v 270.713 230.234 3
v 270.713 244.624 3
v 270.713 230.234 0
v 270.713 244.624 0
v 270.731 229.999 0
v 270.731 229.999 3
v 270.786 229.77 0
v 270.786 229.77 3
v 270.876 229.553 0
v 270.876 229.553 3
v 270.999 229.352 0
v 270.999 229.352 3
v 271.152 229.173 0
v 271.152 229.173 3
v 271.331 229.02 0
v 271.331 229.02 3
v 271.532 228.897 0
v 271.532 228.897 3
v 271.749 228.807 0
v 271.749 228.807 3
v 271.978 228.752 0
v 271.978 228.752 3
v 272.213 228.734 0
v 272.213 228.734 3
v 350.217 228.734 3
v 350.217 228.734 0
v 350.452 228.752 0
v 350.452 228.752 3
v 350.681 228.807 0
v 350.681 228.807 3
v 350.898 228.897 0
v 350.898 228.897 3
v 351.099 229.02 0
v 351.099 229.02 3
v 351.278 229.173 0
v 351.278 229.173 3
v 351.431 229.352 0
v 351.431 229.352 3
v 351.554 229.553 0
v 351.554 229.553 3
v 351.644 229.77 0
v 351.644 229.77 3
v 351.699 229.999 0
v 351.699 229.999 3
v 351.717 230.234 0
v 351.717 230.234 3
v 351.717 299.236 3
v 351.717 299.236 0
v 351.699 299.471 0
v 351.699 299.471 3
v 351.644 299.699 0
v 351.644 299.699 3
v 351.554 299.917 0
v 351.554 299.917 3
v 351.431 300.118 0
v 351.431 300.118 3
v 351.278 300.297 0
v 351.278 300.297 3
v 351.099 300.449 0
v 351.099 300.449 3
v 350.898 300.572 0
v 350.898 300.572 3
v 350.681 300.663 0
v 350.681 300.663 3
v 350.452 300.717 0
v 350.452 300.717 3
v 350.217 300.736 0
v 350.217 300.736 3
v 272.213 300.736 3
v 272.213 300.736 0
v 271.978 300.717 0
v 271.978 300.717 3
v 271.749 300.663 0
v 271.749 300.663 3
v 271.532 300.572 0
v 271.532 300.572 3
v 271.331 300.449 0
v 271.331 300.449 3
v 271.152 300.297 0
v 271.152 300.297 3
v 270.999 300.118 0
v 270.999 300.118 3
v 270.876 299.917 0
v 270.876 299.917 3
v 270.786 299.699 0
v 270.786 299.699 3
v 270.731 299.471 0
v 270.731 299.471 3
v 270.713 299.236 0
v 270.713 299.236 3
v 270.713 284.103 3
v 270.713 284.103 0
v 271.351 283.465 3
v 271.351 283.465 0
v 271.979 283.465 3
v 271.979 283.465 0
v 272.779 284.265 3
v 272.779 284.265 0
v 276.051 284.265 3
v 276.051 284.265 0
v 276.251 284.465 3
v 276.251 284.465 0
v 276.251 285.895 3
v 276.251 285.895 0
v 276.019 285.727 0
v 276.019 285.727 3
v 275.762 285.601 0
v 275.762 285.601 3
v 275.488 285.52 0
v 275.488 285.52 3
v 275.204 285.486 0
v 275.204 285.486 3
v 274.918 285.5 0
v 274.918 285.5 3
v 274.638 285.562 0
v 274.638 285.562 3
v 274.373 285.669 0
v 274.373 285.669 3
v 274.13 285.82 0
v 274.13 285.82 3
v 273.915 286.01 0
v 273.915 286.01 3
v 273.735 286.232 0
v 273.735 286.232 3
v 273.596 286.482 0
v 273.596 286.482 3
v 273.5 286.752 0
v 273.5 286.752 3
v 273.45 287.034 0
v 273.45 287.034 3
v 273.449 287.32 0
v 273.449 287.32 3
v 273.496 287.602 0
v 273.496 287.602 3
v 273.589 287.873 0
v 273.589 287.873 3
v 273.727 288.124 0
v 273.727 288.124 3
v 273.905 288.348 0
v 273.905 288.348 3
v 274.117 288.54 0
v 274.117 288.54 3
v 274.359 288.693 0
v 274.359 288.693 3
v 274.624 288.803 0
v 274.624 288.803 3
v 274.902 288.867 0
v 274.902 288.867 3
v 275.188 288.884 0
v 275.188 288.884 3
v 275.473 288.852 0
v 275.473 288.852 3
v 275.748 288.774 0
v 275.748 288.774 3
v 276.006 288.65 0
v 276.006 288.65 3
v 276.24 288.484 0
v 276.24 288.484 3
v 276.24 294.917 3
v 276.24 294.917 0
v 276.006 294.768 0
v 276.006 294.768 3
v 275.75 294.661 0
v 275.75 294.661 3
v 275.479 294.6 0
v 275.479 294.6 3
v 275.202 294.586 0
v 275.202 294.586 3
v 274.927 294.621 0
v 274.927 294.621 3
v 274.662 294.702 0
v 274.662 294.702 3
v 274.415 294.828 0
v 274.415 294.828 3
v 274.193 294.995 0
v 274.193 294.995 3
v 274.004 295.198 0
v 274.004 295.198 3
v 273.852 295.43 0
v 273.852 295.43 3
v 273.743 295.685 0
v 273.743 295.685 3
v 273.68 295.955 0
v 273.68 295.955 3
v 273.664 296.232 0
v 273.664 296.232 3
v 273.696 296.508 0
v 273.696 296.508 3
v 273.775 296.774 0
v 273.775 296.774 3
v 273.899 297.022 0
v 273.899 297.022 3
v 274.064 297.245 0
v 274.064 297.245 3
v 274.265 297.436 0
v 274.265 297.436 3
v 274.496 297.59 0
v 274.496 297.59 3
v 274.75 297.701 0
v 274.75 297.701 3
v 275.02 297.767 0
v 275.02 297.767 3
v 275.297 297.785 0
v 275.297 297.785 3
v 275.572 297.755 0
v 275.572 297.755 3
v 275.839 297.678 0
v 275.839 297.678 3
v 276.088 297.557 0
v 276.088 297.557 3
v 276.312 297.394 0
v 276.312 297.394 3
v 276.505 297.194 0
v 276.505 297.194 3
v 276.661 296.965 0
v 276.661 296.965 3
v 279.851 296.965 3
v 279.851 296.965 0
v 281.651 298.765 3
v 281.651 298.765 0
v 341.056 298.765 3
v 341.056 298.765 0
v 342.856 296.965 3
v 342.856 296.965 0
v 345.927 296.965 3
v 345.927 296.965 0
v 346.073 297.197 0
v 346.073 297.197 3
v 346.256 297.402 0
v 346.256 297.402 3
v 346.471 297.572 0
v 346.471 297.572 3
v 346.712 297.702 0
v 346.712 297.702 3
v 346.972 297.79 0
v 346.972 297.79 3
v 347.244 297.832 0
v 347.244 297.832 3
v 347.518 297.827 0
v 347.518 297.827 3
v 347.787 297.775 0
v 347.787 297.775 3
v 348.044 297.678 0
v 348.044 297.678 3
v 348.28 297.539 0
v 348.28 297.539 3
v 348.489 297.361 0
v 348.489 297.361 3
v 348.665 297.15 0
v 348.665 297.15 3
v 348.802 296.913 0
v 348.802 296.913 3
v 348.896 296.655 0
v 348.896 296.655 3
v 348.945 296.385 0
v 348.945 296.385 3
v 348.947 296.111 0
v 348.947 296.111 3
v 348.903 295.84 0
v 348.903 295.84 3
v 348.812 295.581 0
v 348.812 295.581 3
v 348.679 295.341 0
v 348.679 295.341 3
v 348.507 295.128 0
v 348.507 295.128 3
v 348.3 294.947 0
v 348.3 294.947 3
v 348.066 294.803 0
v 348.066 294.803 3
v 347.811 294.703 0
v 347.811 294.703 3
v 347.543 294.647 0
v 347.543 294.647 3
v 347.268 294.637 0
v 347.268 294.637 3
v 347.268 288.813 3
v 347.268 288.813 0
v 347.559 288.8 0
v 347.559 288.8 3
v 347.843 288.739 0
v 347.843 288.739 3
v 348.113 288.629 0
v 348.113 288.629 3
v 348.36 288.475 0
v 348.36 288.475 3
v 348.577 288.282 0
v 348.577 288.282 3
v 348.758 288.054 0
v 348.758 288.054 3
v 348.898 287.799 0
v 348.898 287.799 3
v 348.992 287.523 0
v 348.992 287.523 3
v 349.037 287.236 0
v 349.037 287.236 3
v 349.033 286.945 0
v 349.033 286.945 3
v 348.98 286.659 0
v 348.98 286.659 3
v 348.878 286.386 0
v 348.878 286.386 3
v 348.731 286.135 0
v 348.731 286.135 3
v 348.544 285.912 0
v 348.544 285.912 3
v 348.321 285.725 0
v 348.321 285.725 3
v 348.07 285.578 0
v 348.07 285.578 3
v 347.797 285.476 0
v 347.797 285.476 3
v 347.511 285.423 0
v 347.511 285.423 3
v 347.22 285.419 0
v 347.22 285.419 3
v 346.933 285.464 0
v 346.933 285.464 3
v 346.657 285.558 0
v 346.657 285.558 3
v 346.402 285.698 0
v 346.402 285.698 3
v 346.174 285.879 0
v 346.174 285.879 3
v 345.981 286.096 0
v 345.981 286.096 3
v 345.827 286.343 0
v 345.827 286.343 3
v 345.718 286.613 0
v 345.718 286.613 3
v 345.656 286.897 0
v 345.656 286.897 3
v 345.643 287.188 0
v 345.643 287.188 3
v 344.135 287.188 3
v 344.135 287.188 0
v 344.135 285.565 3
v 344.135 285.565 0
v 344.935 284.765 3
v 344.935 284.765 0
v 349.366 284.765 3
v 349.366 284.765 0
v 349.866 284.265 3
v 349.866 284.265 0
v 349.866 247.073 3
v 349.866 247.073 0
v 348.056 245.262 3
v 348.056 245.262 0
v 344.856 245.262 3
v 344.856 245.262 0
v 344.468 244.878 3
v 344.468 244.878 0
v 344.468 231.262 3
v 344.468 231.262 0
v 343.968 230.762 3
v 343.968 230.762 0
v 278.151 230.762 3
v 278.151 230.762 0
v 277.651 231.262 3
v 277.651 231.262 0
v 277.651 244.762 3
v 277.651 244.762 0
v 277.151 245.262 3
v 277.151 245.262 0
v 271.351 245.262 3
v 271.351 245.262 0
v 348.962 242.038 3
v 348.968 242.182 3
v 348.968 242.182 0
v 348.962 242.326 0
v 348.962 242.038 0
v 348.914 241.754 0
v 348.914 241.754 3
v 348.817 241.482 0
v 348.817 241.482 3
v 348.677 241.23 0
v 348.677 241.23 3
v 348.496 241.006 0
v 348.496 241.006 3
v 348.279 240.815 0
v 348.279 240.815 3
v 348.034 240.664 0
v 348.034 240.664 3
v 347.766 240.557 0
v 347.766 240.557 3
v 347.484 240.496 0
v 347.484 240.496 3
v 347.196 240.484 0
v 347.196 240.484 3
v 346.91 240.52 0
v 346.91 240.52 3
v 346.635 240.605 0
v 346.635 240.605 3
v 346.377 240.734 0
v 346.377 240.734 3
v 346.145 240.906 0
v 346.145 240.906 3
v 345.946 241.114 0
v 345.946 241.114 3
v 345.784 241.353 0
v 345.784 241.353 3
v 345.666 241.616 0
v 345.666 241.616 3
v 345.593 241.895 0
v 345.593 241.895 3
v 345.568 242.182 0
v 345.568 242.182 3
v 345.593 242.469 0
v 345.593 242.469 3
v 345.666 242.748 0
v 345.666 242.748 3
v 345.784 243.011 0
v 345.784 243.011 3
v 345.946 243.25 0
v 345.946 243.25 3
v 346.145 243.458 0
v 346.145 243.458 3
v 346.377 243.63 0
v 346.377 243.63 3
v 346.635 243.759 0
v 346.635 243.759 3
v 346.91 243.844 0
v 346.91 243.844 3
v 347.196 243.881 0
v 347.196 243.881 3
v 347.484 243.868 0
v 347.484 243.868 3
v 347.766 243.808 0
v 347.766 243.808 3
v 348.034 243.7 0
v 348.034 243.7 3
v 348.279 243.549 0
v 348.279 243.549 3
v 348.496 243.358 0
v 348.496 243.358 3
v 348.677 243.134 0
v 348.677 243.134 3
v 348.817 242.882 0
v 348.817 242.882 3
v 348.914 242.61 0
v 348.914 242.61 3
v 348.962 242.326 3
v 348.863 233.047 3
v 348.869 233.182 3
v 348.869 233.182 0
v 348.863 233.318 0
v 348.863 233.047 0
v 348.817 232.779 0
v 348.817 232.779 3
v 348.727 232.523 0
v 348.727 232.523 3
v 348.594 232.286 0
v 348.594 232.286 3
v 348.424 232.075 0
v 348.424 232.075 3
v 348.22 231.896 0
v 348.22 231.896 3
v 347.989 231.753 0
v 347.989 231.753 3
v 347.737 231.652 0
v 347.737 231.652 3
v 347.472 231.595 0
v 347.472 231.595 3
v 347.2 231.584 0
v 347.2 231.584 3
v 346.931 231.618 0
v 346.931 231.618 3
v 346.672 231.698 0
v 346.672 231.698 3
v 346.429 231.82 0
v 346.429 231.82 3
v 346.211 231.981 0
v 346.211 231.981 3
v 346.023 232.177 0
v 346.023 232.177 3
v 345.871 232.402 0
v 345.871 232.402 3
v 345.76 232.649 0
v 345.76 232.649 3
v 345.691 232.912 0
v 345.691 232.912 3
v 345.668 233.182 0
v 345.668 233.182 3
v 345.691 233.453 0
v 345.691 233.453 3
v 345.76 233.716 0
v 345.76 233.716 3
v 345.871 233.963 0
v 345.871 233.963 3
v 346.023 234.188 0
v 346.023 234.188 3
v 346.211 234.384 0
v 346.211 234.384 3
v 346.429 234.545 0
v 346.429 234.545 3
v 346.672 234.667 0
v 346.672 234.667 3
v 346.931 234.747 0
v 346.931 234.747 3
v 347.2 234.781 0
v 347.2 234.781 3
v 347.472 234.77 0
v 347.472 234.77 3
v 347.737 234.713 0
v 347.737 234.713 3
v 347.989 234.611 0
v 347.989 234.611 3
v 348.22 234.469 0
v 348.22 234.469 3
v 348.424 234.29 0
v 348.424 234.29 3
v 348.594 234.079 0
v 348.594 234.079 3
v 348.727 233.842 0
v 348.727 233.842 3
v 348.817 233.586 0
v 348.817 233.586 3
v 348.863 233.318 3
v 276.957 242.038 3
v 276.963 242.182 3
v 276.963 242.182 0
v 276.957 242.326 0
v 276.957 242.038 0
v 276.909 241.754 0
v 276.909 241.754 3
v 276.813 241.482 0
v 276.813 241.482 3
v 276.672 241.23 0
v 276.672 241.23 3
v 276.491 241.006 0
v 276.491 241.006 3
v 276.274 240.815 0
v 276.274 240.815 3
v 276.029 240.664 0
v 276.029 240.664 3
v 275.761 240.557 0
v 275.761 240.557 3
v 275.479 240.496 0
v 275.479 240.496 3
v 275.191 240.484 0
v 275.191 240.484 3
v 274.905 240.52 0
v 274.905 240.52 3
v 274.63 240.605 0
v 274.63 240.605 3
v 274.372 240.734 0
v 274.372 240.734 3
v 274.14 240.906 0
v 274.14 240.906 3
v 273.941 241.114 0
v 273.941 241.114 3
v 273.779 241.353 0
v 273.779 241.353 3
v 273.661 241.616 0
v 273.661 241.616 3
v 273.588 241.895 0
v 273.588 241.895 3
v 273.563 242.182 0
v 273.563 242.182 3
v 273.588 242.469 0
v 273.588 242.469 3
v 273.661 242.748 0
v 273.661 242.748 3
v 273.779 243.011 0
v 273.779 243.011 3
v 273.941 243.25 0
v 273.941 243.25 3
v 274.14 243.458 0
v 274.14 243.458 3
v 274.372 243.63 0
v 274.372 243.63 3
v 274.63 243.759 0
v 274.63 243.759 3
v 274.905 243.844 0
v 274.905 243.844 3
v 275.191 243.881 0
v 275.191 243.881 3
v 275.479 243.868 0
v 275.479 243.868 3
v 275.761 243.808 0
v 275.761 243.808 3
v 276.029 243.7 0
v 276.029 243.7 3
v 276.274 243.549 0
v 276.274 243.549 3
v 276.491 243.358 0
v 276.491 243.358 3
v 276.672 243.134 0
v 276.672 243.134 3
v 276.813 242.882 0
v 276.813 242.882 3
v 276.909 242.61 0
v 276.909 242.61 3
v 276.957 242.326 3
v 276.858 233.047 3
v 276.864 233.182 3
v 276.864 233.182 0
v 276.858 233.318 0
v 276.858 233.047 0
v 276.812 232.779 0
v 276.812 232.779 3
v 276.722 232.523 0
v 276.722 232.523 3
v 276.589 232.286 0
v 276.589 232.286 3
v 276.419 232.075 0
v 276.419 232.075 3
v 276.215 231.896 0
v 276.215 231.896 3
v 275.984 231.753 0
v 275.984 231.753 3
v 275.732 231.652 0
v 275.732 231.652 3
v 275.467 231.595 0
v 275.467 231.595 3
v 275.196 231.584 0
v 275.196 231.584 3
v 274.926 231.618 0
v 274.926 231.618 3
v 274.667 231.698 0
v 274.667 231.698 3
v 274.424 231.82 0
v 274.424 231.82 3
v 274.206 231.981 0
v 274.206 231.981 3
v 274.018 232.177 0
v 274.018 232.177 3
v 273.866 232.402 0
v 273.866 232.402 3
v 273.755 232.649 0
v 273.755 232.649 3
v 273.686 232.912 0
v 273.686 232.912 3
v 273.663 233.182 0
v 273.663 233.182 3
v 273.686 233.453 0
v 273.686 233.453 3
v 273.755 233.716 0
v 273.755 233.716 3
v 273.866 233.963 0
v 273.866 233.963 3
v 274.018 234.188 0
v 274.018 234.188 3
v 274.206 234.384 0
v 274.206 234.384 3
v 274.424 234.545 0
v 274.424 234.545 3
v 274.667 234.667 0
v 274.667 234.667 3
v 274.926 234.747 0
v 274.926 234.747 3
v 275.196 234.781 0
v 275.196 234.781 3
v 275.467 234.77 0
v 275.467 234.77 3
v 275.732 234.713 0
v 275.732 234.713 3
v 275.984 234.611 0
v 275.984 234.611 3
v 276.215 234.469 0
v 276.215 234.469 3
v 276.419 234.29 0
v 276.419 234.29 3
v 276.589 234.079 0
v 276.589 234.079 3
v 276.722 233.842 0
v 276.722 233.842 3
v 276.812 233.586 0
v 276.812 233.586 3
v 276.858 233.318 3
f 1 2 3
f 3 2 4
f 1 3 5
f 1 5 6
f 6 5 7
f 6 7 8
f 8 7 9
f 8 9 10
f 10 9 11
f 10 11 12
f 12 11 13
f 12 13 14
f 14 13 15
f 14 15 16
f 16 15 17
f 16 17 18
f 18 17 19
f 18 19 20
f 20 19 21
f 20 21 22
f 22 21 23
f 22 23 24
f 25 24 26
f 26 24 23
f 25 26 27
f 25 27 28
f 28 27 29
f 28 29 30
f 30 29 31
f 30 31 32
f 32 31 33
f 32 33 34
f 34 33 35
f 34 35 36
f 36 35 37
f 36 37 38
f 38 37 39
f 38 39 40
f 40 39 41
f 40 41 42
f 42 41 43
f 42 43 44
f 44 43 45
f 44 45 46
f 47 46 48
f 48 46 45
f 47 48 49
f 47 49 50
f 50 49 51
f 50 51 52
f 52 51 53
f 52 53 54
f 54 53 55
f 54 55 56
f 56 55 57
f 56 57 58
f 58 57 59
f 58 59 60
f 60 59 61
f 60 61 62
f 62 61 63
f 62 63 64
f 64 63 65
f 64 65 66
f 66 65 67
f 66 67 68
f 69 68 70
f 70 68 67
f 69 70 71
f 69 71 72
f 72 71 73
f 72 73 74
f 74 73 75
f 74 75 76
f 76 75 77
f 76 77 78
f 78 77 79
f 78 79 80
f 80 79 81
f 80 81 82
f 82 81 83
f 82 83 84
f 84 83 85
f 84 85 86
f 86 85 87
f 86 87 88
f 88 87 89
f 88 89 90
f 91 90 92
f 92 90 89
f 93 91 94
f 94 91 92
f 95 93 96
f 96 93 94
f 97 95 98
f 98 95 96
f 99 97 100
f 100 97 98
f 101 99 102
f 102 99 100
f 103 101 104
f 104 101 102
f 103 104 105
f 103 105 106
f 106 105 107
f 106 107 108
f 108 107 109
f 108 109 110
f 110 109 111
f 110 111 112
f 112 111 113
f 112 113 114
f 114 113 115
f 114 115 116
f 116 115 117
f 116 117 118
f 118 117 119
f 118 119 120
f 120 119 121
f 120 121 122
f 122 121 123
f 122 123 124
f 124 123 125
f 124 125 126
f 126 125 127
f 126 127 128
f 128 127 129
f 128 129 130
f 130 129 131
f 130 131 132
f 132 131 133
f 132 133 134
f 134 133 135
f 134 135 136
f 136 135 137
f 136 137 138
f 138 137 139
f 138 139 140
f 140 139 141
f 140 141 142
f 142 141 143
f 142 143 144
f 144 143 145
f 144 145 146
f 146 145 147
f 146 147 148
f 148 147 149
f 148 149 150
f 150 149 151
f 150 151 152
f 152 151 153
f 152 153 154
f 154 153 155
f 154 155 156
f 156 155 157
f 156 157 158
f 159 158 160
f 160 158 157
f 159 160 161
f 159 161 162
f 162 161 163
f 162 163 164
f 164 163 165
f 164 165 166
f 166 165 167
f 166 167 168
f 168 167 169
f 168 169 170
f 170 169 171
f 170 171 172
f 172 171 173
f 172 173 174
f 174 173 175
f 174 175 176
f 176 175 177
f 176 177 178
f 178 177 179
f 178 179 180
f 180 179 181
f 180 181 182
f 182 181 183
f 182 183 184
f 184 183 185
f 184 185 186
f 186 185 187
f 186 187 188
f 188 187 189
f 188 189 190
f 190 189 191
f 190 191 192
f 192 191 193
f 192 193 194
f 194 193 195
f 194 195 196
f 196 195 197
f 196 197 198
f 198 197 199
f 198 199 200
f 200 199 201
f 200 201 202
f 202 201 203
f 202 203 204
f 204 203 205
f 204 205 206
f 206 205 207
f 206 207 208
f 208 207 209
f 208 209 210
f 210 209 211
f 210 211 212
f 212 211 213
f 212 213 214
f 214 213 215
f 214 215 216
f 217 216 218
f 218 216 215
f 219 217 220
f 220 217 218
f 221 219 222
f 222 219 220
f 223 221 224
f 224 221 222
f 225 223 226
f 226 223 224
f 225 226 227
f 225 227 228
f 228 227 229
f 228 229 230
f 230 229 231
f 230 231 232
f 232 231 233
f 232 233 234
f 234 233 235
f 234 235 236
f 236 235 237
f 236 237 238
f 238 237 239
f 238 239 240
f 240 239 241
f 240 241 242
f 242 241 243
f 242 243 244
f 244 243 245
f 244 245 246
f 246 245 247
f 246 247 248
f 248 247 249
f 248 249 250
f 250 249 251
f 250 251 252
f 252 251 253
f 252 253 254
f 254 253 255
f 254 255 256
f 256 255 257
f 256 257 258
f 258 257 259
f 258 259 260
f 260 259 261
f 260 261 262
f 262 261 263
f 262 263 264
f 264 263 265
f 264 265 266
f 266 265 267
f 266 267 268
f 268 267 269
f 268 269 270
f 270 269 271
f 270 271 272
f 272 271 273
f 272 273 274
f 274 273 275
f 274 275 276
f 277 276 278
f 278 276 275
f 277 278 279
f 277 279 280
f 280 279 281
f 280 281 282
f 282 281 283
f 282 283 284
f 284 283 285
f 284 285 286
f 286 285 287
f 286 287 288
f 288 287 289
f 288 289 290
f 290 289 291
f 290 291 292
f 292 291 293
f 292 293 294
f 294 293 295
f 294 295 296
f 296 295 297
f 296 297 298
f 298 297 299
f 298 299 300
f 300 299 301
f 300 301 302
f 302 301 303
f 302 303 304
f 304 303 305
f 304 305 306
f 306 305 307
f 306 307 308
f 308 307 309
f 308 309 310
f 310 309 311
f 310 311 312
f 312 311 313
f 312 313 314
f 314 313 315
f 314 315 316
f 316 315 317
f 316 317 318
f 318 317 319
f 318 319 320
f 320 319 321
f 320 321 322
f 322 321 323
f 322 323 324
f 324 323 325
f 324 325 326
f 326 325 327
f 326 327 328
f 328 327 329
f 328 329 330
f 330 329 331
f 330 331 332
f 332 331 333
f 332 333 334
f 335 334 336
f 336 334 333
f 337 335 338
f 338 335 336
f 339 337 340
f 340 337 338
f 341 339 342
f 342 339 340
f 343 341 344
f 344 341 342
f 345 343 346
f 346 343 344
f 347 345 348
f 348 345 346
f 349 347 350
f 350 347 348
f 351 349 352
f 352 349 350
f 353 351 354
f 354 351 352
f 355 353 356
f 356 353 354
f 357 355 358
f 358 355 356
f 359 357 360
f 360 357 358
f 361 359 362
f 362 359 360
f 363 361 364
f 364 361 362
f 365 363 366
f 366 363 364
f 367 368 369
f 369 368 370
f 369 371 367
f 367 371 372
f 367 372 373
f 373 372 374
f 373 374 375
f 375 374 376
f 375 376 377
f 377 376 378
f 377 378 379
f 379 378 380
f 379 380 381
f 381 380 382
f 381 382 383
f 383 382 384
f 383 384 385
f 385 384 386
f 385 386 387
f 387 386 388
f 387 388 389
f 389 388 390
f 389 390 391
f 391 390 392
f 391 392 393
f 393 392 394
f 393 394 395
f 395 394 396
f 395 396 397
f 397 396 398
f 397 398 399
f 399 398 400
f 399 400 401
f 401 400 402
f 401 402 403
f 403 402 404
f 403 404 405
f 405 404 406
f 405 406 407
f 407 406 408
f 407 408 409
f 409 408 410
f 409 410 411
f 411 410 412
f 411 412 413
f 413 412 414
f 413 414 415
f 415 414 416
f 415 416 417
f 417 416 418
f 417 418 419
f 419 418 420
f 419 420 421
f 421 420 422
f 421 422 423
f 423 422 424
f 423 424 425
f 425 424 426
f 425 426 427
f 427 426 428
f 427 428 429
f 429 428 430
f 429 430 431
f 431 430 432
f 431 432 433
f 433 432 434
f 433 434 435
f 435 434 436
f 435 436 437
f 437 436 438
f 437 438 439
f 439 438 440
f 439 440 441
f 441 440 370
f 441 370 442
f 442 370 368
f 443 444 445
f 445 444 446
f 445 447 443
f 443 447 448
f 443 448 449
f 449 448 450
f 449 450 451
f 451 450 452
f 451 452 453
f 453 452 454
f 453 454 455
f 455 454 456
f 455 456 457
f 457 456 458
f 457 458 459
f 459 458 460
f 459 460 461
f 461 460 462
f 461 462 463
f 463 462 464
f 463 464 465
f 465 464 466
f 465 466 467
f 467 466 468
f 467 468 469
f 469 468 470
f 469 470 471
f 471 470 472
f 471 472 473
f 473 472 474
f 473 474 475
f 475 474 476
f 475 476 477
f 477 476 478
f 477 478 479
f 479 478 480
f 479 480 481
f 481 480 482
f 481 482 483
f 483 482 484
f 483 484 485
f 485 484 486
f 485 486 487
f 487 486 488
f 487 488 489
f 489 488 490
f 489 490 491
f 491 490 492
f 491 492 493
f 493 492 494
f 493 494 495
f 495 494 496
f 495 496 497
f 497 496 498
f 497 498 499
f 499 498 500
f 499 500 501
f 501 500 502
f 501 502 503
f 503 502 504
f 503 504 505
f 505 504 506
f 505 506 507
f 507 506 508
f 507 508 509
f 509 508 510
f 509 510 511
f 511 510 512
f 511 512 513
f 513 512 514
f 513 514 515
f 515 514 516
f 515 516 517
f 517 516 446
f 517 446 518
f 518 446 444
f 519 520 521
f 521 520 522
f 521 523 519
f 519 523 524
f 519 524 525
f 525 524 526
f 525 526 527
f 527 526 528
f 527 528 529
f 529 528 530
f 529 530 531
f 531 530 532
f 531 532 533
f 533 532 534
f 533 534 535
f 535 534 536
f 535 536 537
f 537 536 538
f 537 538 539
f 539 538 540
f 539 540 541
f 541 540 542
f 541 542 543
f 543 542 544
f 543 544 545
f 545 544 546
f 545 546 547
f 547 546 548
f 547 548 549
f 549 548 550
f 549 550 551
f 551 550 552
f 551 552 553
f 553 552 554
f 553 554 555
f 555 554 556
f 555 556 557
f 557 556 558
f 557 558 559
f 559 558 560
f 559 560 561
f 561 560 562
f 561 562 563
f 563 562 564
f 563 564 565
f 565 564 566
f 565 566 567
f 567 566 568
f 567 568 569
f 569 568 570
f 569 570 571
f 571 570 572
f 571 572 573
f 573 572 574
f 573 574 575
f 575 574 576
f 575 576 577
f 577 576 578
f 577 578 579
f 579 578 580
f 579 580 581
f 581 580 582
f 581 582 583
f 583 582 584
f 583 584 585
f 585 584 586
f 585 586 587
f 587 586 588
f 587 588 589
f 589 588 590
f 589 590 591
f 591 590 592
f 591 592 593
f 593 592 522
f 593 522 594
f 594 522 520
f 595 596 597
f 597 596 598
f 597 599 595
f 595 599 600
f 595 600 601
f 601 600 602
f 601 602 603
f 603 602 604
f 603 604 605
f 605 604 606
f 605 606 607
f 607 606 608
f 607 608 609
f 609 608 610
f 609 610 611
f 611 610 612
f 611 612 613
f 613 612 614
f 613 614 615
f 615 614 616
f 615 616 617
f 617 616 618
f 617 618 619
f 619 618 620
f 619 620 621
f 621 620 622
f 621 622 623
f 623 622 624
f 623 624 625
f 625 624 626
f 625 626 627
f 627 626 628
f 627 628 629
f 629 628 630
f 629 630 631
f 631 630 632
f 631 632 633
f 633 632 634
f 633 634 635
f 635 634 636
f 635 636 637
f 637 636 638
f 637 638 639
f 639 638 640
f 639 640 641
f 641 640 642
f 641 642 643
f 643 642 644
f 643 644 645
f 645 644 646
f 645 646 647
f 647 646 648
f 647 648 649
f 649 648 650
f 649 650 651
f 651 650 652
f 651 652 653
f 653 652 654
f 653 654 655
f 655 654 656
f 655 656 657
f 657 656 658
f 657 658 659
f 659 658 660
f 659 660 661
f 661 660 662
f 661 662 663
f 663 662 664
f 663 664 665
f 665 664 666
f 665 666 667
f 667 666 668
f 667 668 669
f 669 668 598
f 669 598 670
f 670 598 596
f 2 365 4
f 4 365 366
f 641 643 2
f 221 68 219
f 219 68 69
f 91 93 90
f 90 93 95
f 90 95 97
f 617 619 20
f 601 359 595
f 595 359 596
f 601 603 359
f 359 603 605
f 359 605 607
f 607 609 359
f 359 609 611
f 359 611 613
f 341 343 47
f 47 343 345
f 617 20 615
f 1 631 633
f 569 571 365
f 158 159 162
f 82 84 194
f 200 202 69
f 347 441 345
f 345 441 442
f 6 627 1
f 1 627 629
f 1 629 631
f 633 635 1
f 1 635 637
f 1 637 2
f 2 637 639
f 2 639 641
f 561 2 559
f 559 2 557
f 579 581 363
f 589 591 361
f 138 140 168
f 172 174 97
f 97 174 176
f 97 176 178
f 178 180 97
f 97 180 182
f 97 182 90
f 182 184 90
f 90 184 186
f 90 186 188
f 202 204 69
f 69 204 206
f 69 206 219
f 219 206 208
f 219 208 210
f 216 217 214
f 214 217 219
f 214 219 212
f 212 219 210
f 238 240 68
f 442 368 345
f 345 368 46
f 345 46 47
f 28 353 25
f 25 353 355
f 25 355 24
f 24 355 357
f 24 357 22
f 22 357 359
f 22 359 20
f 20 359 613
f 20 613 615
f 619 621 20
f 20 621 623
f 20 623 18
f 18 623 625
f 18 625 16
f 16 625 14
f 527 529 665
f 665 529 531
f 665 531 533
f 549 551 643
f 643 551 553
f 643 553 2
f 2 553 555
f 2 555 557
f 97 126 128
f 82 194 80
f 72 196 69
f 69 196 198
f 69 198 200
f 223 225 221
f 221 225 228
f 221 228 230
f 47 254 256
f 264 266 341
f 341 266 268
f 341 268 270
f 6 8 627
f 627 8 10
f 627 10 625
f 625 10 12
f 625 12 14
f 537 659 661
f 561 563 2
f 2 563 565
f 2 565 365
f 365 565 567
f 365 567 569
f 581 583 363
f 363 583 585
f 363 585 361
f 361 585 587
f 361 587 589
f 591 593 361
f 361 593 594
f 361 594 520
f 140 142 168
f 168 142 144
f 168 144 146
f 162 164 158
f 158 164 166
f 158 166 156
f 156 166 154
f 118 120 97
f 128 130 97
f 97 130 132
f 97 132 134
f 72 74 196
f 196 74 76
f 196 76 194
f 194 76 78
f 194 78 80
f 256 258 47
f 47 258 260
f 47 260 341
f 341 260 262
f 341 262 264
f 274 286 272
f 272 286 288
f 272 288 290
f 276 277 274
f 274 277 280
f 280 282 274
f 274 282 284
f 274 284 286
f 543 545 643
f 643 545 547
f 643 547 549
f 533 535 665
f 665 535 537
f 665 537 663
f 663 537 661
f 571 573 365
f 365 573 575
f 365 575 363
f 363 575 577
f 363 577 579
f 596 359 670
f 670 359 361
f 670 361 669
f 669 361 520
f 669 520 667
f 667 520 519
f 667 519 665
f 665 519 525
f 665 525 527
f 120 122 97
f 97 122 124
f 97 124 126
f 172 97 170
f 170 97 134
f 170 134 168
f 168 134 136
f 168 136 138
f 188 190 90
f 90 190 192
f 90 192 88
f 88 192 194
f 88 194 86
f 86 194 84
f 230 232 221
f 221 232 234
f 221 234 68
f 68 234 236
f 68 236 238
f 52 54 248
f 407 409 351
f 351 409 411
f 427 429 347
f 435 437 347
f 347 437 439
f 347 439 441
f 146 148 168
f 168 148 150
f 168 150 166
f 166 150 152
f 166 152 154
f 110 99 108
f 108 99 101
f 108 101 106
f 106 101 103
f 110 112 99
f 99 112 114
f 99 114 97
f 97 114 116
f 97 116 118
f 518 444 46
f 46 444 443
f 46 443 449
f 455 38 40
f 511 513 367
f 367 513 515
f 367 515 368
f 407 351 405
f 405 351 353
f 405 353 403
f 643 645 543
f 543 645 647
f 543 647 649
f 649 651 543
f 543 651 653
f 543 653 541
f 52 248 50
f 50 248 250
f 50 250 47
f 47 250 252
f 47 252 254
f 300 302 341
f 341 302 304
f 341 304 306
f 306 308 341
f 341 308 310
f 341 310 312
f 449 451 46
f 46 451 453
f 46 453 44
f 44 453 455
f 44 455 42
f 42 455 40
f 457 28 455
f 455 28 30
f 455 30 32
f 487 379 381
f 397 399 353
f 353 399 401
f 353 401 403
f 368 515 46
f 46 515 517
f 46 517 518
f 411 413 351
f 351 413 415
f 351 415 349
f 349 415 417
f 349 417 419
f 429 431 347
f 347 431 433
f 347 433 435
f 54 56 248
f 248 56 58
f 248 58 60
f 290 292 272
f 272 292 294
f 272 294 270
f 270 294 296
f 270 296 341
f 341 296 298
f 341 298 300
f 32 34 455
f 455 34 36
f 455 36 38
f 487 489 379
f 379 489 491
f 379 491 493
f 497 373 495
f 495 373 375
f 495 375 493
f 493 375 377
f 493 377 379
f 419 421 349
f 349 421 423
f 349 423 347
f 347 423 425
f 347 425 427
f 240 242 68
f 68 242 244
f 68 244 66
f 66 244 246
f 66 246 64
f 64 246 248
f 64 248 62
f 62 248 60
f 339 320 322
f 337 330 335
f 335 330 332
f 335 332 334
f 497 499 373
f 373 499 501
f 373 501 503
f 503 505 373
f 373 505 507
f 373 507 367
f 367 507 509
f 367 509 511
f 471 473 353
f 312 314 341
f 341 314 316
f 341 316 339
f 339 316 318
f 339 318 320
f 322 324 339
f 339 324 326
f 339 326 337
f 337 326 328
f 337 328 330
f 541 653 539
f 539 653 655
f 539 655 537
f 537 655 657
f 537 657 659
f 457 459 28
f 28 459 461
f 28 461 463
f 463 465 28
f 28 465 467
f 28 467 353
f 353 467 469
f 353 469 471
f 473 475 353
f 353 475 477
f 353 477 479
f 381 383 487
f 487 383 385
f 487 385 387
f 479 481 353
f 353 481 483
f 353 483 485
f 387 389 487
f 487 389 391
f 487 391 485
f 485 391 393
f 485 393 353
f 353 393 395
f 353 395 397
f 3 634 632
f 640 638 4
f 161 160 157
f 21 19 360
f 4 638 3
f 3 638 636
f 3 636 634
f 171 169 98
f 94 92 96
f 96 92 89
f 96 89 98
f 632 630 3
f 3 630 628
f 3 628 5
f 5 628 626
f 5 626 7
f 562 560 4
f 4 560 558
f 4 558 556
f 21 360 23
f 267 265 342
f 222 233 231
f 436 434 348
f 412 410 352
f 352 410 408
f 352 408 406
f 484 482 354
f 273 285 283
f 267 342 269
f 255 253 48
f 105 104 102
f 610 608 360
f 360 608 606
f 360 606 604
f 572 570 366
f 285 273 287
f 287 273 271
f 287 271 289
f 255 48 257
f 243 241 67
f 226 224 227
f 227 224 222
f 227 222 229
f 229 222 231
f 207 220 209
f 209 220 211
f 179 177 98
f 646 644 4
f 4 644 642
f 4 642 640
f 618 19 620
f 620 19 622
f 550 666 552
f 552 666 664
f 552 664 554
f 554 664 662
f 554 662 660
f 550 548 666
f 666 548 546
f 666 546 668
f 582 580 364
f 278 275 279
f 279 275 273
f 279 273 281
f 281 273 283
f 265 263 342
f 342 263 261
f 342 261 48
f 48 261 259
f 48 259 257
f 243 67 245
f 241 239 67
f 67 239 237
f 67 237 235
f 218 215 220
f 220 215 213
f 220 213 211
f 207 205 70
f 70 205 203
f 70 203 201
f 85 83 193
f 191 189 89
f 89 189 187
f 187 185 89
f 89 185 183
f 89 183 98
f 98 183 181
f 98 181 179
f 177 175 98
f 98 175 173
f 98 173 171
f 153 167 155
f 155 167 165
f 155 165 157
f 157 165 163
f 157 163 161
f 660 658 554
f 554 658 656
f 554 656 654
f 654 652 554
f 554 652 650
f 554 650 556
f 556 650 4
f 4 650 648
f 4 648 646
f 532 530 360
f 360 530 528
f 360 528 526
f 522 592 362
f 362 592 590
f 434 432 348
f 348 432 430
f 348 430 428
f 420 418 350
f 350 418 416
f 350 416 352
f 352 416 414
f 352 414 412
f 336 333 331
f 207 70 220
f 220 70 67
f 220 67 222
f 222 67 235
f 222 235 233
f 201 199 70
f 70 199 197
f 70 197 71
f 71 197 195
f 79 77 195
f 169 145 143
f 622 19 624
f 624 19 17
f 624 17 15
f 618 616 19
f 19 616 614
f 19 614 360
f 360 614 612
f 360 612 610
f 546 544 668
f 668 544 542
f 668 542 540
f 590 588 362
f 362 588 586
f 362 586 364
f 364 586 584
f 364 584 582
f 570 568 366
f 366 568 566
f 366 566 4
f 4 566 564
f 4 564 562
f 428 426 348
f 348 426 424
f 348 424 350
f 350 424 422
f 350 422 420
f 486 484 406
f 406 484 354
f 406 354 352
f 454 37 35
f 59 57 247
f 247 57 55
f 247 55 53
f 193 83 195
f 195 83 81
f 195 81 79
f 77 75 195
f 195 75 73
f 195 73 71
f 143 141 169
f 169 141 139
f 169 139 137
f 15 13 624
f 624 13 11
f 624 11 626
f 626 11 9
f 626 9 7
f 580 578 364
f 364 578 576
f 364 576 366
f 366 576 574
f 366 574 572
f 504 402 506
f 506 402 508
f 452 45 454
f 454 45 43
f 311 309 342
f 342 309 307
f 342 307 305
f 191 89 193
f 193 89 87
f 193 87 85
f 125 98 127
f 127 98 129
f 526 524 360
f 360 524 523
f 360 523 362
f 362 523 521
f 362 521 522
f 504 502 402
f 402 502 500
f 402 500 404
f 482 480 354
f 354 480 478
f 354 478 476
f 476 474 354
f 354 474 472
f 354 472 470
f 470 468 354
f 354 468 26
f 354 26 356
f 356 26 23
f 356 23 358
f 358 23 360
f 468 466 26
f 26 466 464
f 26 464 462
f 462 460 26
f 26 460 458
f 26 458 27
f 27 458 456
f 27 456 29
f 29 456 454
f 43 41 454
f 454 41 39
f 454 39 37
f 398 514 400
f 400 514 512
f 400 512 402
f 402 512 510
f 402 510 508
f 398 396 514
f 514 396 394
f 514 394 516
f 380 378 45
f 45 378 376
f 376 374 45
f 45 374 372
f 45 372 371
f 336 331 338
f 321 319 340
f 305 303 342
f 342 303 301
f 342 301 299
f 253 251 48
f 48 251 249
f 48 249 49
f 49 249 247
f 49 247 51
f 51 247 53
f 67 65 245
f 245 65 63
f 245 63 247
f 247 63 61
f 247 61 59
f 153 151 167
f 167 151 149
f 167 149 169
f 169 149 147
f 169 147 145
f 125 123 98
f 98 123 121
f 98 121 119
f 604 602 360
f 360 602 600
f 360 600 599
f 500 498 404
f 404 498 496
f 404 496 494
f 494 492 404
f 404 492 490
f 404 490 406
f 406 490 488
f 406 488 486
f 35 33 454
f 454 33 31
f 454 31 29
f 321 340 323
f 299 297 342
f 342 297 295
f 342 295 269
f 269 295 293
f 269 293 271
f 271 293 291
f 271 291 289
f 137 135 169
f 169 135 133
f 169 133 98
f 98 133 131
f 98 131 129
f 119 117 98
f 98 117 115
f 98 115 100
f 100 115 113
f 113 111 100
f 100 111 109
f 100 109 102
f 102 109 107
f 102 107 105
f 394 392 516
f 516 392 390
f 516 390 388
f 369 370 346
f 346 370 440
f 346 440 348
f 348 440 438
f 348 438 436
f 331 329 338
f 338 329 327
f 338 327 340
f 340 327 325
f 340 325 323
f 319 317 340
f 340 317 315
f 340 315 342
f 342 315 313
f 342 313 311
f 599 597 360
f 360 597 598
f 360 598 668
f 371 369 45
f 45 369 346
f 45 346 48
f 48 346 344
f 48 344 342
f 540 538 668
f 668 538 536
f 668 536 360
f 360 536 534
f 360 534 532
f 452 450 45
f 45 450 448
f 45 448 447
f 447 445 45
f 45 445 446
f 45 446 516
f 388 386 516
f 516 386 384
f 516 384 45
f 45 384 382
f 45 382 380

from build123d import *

# Parameters (mm, degrees)
MODEL_R                 = 1.600279216
MODEL_R_2               = 1.7
SALIENTE_EXTRUIR2_DEPTH = 3


with BuildPart() as part:
    # Model → Saliente-Extruir2 (new body)
    with BuildSketch(Plane.XY):
        with BuildLine():
            Line((271.351226454, 245.262259879), (270.71262235, 244.623655775))
            Line((270.71262235, 244.623655775), (270.71262235, 230.233550186))
            ThreePointArc((270.71262235, 230.233550186), (271.151962178, 229.172890015), (272.21262235, 228.733550186))
            Line((272.21262235, 228.733550186), (350.217232207, 228.733550186))
            ThreePointArc((350.217232207, 228.733550186), (351.277892379, 229.172890015), (351.717232207, 230.233550186))
            Line((351.717232207, 230.233550186), (351.717232207, 299.235954421))
            ThreePointArc((351.717232208, 299.235954421), (351.277892379, 300.296614592), (350.217232207, 300.735954421))
            Line((350.217232207, 300.735954421), (272.21262235, 300.735954421))
            ThreePointArc((272.21262235, 300.735954421), (271.151962178, 300.296614592), (270.71262235, 299.235954421))
            Line((270.71262235, 299.235954421), (270.71262235, 284.103268217))
            Line((270.71262235, 284.103268217), (271.351226454, 283.464664113))
            Line((271.351226454, 283.464664113), (271.97853318, 283.464664113))
            Line((271.97853318, 283.464664113), (272.77853318, 284.264664113))
            Line((272.77853318, 284.264664113), (276.051226454, 284.264664113))
            Line((276.051226454, 284.264664113), (276.251226454, 284.464664114))
            Line((276.251226454, 284.464664114), (276.251226454, 285.894852324))
            ThreePointArc((276.251226454, 285.894852324), (273.443758266, 287.176917482), (276.239508411, 288.48433854))
            Line((276.239508411, 288.48433854), (276.239508411, 294.917021597))
            ThreePointArc((276.239508411, 294.917021597), (273.696009795, 296.507802753), (276.661013605, 296.964664113))
            Line((276.661013605, 296.964664113), (279.851226454, 296.964664113))
            Line((279.851226454, 296.964664113), (281.651226454, 298.764664113))
            Line((281.651226454, 298.764664113), (341.055836311, 298.764664113))
            Line((341.055836311, 298.764664113), (342.855836311, 296.964664113))
            Line((342.855836311, 296.964664113), (345.9273642, 296.964664113))
            ThreePointArc((345.9273642, 296.964664113), (348.738416986, 297.034405979), (347.268369224, 294.637357529))
            Line((347.268369224, 294.637357529), (347.268369224, 288.812692031))
            ThreePointArc((347.268369224, 288.812692031), (348.543864828, 285.912196427), (345.643369224, 287.187692032))
            Line((345.643369224, 287.187692032), (344.134568969, 287.187692032))
            Line((344.134568969, 287.187692032), (344.134568969, 285.564664113))
            Line((344.134568969, 285.564664113), (344.934568969, 284.764664113))
            Line((344.934568969, 284.764664113), (349.36625565, 284.764664113))
            Line((349.36625565, 284.764664113), (349.86625565, 284.264664113))
            Line((349.86625565, 284.264664113), (349.86625565, 247.072679218))
            Line((349.86625565, 247.072679218), (348.055836311, 245.262259879))
            Line((348.055836311, 245.262259879), (344.855836311, 245.262259879))
            Line((344.855836311, 245.262259879), (344.468087014, 244.877634885))
            Line((344.468087014, 244.877634885), (344.468087014, 231.262259879))
            Line((344.468087014, 231.262259879), (343.968087014, 230.762259879))
            Line((343.968087014, 230.762259879), (278.151226454, 230.762259879))
            Line((278.151226454, 230.762259879), (277.651226454, 231.262259879))
            Line((277.651226454, 231.262259879), (277.651226454, 244.762259879))
            Line((277.651226454, 244.762259879), (277.151226454, 245.262259879))
            Line((277.151226454, 245.262259879), (271.351226454, 245.262259879))
        make_face()
        with Locations((275.263424864, 233.182413169)):
            Circle(MODEL_R, mode=Mode.SUBTRACT)
        with Locations((275.263424864, 242.182078667)):
            Circle(MODEL_R_2, mode=Mode.SUBTRACT)
        with Locations((347.268369224, 233.182413169)):
            Circle(MODEL_R, mode=Mode.SUBTRACT)
        with Locations((347.268369224, 242.182078667)):
            Circle(MODEL_R_2, mode=Mode.SUBTRACT)
    extrude(amount=SALIENTE_EXTRUIR2_DEPTH)


solid = part.part
